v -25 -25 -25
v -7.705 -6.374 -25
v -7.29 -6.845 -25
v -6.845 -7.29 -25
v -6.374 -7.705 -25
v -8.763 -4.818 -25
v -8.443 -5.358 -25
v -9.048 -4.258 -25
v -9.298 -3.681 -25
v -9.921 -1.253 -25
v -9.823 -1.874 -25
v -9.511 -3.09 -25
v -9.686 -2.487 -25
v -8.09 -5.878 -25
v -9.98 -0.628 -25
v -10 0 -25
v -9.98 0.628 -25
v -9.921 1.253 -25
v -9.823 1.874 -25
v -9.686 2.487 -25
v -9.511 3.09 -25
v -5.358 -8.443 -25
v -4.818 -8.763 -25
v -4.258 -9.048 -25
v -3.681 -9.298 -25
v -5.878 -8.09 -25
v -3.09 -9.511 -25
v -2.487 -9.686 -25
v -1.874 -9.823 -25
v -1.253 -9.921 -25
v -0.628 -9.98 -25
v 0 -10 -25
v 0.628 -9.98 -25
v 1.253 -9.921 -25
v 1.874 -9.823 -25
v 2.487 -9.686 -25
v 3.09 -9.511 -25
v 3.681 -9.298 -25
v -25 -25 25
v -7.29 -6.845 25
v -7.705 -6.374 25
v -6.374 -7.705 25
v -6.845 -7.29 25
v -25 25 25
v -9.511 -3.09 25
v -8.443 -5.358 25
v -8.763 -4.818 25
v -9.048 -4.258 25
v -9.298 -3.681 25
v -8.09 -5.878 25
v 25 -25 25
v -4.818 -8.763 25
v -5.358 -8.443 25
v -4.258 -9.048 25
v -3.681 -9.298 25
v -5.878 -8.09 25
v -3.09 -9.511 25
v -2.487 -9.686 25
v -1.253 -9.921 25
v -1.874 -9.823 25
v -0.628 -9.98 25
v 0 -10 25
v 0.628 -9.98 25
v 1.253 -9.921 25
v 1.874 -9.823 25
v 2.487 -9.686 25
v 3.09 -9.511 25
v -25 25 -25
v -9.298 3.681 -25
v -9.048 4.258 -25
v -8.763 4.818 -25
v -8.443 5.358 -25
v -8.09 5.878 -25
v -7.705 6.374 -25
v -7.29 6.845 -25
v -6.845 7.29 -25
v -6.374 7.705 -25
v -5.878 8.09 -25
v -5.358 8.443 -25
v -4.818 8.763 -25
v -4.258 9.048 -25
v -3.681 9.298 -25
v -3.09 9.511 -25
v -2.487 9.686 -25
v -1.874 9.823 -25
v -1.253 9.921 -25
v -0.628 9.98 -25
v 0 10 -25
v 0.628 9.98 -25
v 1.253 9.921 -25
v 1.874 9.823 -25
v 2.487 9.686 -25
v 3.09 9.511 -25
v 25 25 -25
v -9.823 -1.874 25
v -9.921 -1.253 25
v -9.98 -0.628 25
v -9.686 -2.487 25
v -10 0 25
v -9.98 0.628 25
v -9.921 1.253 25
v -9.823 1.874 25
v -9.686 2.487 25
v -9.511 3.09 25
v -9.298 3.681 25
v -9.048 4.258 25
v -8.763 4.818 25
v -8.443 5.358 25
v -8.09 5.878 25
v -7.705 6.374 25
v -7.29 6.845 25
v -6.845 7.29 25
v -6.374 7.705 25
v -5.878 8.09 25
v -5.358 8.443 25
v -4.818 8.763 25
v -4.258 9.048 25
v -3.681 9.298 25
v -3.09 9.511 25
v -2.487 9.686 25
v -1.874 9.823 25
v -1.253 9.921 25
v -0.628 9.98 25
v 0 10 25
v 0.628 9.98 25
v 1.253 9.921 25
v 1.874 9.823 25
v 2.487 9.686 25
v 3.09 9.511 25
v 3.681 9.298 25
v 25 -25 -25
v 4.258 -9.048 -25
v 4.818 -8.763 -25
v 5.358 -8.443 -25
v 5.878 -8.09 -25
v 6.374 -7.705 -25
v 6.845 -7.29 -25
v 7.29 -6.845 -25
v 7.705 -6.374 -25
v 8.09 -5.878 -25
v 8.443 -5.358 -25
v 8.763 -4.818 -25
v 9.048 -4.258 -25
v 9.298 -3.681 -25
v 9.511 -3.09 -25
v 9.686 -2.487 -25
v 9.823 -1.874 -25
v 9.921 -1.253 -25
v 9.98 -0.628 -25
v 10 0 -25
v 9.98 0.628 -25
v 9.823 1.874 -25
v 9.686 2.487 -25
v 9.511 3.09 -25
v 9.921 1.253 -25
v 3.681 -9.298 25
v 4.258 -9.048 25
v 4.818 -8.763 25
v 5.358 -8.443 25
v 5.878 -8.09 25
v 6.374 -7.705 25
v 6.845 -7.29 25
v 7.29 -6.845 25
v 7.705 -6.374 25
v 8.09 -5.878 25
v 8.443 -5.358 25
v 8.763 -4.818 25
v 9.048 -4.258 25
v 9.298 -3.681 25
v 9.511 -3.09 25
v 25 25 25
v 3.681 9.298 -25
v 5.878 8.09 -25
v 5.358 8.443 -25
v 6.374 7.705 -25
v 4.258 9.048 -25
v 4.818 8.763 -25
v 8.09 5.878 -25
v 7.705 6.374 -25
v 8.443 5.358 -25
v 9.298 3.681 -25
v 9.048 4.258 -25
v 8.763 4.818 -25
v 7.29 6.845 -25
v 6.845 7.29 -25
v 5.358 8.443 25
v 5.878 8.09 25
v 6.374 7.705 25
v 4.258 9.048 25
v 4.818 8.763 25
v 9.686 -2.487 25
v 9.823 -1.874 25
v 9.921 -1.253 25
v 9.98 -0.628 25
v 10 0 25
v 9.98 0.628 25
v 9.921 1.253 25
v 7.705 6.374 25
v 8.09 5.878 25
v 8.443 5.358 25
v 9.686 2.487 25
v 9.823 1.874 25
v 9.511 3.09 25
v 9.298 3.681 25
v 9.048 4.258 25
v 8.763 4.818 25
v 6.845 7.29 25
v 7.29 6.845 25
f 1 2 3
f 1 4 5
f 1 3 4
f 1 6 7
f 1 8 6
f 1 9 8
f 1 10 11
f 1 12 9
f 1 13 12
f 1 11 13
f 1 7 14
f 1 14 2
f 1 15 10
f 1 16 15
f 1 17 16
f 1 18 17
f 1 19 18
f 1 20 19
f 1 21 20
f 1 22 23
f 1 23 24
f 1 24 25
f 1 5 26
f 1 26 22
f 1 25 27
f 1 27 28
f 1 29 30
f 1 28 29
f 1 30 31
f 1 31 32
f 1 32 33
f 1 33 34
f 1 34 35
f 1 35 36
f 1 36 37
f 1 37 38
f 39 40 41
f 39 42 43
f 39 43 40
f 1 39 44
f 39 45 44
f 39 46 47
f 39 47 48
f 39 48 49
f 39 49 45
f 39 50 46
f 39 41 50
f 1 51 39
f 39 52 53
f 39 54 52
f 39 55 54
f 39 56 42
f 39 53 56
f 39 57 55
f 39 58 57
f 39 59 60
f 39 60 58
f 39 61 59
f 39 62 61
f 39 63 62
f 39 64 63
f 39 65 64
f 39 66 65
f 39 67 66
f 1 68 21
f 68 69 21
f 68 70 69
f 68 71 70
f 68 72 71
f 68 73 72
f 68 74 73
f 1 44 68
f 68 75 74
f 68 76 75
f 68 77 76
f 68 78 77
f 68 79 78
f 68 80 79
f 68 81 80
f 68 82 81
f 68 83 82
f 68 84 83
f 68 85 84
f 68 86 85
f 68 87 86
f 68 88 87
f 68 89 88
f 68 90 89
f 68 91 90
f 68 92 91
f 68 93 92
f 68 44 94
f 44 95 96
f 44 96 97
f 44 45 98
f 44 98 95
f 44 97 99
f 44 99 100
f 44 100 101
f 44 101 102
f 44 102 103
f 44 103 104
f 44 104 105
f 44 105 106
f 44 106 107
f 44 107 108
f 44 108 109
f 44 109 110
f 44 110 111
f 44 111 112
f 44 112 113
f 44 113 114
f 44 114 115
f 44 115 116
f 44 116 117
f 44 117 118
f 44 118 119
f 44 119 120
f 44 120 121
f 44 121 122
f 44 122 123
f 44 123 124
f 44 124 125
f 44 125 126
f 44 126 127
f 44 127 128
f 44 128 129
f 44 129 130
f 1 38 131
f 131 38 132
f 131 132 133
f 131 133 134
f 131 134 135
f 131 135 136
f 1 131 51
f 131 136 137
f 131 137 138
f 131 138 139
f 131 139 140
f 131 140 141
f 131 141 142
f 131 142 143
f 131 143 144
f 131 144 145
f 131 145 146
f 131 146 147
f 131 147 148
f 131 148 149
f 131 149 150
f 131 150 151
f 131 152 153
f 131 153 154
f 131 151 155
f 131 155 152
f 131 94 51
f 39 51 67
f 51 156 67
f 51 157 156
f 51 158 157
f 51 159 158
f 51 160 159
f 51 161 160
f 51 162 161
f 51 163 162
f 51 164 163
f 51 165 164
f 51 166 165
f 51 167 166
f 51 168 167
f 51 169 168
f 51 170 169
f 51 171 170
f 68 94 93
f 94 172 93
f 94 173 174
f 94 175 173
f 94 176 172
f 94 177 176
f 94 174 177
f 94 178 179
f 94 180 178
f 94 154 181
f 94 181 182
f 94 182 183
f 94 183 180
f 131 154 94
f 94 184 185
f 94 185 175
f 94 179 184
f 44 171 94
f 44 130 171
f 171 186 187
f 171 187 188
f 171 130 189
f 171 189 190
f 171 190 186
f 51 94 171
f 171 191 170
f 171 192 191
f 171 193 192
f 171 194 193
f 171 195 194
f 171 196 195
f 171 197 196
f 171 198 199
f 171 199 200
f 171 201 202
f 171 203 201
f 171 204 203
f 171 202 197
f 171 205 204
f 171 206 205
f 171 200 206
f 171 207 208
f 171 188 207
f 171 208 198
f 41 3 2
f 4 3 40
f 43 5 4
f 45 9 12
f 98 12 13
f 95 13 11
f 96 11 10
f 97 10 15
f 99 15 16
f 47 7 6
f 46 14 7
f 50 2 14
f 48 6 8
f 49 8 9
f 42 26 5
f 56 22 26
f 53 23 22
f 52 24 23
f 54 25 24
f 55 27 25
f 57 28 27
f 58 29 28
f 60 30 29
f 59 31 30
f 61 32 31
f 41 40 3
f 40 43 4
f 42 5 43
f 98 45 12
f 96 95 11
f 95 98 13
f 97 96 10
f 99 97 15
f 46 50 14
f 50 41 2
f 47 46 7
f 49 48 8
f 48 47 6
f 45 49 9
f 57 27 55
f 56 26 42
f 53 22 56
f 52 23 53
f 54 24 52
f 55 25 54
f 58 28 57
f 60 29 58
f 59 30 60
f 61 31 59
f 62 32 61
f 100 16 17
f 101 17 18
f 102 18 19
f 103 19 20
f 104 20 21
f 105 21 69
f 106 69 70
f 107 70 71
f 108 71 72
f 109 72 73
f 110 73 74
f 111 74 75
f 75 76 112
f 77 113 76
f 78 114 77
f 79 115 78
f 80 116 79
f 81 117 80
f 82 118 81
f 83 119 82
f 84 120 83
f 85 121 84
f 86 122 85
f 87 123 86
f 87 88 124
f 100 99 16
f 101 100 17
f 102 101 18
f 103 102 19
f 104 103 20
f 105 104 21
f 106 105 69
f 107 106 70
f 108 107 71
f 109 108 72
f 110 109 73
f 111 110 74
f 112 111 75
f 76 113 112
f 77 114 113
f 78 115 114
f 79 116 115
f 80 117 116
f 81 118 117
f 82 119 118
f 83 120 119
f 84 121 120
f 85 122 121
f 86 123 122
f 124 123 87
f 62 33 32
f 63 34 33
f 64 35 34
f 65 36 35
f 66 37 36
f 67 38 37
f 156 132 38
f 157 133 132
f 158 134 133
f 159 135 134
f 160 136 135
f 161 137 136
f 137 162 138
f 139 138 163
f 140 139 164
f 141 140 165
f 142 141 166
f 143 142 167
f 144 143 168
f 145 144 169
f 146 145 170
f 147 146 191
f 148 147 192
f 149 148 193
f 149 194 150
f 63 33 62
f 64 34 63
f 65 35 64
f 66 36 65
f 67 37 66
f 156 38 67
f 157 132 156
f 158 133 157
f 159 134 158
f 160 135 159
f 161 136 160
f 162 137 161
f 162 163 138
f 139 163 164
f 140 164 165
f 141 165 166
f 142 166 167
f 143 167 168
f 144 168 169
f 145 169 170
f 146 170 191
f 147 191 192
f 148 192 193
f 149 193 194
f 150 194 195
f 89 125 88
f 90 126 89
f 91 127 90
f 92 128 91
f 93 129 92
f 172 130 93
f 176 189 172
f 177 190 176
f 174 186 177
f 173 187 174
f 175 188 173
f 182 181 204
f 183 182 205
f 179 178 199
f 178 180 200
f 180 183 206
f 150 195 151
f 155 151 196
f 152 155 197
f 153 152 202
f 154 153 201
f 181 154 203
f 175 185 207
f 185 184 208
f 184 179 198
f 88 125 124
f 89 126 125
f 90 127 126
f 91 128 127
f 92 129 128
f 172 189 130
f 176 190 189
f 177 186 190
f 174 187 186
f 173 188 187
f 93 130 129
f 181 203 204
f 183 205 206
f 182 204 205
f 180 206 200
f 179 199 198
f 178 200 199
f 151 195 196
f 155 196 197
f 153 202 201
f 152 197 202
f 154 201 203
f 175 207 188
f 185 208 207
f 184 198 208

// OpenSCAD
$fn = 100;

difference() {
    cube([50, 50, 50], center = true);
    cylinder(h = 51, d = 20, center = true);
}
